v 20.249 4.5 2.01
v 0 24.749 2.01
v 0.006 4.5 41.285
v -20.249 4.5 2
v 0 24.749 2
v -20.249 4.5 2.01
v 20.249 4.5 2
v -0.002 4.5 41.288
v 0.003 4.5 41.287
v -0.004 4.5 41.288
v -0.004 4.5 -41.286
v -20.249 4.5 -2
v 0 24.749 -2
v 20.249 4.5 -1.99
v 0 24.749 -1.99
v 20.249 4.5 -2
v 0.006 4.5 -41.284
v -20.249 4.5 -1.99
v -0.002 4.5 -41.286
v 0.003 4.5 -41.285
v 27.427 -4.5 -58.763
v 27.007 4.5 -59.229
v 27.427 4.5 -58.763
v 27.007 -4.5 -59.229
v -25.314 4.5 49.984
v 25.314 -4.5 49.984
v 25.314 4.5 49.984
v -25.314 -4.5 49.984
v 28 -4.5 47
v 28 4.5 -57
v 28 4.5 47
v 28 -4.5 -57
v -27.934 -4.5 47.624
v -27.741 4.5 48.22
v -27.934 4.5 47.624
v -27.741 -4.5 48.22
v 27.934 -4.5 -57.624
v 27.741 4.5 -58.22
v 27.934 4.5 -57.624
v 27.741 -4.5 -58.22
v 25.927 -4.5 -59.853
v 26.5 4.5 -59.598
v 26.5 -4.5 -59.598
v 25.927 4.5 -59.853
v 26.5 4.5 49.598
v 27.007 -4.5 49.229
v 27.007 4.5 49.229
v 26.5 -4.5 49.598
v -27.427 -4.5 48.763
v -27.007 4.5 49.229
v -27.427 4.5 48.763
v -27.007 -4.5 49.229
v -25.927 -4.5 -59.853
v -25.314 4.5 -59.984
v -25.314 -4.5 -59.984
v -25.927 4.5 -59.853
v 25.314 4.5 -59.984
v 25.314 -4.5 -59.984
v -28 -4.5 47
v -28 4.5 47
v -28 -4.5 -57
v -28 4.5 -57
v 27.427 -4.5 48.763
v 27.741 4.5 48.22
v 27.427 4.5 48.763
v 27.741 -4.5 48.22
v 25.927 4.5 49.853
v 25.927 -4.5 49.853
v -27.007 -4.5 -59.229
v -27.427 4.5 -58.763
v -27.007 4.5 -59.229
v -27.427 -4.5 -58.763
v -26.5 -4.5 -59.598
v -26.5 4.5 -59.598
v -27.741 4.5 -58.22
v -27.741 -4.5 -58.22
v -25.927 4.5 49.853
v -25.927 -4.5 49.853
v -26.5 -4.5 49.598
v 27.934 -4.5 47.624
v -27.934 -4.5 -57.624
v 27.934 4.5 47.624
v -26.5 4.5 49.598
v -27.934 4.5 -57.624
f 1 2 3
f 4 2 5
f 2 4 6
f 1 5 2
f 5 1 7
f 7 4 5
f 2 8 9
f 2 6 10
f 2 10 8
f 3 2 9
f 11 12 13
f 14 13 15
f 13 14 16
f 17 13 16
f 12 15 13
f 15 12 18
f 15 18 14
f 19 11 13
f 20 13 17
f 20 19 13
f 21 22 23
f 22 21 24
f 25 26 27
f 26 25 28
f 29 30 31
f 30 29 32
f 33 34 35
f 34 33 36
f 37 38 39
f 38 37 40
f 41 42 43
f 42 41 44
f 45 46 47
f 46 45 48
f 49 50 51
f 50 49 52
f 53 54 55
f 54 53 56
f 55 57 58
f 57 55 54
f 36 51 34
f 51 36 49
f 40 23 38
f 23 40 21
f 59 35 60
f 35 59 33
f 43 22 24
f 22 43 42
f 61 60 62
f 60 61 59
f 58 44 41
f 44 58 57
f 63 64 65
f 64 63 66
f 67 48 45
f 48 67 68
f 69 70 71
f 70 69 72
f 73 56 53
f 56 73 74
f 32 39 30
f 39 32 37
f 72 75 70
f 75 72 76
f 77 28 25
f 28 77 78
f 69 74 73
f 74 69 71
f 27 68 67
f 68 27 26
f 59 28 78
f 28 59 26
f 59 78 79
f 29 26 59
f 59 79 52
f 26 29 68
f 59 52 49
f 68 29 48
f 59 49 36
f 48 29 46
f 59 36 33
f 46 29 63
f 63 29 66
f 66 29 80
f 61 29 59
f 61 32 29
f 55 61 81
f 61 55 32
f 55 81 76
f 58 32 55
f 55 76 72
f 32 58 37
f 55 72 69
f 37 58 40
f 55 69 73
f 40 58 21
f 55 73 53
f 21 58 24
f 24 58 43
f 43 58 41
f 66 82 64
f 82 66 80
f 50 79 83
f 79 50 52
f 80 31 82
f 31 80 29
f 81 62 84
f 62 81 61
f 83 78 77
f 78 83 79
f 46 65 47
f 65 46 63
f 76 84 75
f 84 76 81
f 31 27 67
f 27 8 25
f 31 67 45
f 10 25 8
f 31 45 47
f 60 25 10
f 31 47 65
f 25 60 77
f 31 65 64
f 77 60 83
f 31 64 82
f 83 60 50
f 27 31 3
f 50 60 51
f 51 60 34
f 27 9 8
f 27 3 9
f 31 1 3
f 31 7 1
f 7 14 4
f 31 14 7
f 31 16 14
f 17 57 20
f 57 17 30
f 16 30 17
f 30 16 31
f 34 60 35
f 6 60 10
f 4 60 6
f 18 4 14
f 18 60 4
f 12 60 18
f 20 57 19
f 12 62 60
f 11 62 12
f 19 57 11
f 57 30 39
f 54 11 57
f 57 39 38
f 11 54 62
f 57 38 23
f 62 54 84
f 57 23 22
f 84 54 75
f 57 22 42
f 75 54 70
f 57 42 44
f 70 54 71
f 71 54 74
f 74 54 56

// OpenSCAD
// Ethereum Logo Parameters
height = 100;       // Total height of the model
middle_width = 35;  // Width at the middle where the pyramids meet
gap_size = 4;       // Size of the gap between pyramids

// Base Parameters - Adjustable Controls
base_width = 50;    // Width of rectangular base
base_depth = 15;    // Depth of rectangular base
base_height = 110;  // Height of rectangular base
base_offset_x = 0;  // Horizontal offset of base (X axis)
base_offset_y = -0;// Horizontal offset of base (Y axis)
base_offset_z = -60;// Vertical offset of base (Z axis)
round_radius = 3;   // Radius of the rounded edges

// Calculate individual pyramid heights
pyramid_height = (height - gap_size) / 2;

// Module for rounding the side edges (along depth)
module rounded_base_sides(width, depth, height, radius) {
    minkowski() {
        translate([0, radius, radius])
        cube([width, depth - 2*radius, height - 2*radius]);
        
        // Cylinder on its side (along Y axis)
        rotate([90, 0, 0])
        cylinder(r=radius, h=0.0001, $fn=30);
    }
}

// Create a module for the full Ethereum logo
module ethereum_logo() {
    // Add rotation transformation - 45 degrees around Z axis
    rotate([0, 0, 45]) {
        // Upper pyramid
        translate([0, 0, gap_size/2])
        hull() {
            // Bottom face (square)
            translate([-middle_width/2, -middle_width/2, 0])
            cube([middle_width, middle_width, 0.01]);
            
            // Top point
            translate([0, 0, pyramid_height])
            sphere(0.01);
        }
        
        // Lower pyramid (inverted)
        translate([0, 0, -gap_size/2])
        hull() {
            // Top face (square)
            translate([-middle_width/2, -middle_width/2, 0])
            cube([middle_width, middle_width, 0.01]);
            
            // Bottom point
            translate([0, 0, -pyramid_height])
            sphere(0.01);
        }
    }
}

// Module for the half Ethereum logo (front half only)
module half_ethereum_logo() {
    // Use intersection to cut the logo
    intersection() {
        ethereum_logo();
        
        // Cutting plane - extend it 5 units into the base to ensure overlap
        // This ensures there's no gap between the logo and the base
        translate([-100, base_offset_y + base_depth/2 - 5, -100])
        cube([200, 105, 200]);
    }
}

// Create the final model - using explicit union to ensure proper connection
union() {
    // The base with rounded edges
    translate([
        base_offset_x - base_width/2, 
        base_offset_y - base_depth/2, 
        base_offset_z
    ])
    rounded_base_sides(base_width, base_depth, base_height, round_radius);
    
    // Only the front half of the Ethereum logo
    half_ethereum_logo();
}
